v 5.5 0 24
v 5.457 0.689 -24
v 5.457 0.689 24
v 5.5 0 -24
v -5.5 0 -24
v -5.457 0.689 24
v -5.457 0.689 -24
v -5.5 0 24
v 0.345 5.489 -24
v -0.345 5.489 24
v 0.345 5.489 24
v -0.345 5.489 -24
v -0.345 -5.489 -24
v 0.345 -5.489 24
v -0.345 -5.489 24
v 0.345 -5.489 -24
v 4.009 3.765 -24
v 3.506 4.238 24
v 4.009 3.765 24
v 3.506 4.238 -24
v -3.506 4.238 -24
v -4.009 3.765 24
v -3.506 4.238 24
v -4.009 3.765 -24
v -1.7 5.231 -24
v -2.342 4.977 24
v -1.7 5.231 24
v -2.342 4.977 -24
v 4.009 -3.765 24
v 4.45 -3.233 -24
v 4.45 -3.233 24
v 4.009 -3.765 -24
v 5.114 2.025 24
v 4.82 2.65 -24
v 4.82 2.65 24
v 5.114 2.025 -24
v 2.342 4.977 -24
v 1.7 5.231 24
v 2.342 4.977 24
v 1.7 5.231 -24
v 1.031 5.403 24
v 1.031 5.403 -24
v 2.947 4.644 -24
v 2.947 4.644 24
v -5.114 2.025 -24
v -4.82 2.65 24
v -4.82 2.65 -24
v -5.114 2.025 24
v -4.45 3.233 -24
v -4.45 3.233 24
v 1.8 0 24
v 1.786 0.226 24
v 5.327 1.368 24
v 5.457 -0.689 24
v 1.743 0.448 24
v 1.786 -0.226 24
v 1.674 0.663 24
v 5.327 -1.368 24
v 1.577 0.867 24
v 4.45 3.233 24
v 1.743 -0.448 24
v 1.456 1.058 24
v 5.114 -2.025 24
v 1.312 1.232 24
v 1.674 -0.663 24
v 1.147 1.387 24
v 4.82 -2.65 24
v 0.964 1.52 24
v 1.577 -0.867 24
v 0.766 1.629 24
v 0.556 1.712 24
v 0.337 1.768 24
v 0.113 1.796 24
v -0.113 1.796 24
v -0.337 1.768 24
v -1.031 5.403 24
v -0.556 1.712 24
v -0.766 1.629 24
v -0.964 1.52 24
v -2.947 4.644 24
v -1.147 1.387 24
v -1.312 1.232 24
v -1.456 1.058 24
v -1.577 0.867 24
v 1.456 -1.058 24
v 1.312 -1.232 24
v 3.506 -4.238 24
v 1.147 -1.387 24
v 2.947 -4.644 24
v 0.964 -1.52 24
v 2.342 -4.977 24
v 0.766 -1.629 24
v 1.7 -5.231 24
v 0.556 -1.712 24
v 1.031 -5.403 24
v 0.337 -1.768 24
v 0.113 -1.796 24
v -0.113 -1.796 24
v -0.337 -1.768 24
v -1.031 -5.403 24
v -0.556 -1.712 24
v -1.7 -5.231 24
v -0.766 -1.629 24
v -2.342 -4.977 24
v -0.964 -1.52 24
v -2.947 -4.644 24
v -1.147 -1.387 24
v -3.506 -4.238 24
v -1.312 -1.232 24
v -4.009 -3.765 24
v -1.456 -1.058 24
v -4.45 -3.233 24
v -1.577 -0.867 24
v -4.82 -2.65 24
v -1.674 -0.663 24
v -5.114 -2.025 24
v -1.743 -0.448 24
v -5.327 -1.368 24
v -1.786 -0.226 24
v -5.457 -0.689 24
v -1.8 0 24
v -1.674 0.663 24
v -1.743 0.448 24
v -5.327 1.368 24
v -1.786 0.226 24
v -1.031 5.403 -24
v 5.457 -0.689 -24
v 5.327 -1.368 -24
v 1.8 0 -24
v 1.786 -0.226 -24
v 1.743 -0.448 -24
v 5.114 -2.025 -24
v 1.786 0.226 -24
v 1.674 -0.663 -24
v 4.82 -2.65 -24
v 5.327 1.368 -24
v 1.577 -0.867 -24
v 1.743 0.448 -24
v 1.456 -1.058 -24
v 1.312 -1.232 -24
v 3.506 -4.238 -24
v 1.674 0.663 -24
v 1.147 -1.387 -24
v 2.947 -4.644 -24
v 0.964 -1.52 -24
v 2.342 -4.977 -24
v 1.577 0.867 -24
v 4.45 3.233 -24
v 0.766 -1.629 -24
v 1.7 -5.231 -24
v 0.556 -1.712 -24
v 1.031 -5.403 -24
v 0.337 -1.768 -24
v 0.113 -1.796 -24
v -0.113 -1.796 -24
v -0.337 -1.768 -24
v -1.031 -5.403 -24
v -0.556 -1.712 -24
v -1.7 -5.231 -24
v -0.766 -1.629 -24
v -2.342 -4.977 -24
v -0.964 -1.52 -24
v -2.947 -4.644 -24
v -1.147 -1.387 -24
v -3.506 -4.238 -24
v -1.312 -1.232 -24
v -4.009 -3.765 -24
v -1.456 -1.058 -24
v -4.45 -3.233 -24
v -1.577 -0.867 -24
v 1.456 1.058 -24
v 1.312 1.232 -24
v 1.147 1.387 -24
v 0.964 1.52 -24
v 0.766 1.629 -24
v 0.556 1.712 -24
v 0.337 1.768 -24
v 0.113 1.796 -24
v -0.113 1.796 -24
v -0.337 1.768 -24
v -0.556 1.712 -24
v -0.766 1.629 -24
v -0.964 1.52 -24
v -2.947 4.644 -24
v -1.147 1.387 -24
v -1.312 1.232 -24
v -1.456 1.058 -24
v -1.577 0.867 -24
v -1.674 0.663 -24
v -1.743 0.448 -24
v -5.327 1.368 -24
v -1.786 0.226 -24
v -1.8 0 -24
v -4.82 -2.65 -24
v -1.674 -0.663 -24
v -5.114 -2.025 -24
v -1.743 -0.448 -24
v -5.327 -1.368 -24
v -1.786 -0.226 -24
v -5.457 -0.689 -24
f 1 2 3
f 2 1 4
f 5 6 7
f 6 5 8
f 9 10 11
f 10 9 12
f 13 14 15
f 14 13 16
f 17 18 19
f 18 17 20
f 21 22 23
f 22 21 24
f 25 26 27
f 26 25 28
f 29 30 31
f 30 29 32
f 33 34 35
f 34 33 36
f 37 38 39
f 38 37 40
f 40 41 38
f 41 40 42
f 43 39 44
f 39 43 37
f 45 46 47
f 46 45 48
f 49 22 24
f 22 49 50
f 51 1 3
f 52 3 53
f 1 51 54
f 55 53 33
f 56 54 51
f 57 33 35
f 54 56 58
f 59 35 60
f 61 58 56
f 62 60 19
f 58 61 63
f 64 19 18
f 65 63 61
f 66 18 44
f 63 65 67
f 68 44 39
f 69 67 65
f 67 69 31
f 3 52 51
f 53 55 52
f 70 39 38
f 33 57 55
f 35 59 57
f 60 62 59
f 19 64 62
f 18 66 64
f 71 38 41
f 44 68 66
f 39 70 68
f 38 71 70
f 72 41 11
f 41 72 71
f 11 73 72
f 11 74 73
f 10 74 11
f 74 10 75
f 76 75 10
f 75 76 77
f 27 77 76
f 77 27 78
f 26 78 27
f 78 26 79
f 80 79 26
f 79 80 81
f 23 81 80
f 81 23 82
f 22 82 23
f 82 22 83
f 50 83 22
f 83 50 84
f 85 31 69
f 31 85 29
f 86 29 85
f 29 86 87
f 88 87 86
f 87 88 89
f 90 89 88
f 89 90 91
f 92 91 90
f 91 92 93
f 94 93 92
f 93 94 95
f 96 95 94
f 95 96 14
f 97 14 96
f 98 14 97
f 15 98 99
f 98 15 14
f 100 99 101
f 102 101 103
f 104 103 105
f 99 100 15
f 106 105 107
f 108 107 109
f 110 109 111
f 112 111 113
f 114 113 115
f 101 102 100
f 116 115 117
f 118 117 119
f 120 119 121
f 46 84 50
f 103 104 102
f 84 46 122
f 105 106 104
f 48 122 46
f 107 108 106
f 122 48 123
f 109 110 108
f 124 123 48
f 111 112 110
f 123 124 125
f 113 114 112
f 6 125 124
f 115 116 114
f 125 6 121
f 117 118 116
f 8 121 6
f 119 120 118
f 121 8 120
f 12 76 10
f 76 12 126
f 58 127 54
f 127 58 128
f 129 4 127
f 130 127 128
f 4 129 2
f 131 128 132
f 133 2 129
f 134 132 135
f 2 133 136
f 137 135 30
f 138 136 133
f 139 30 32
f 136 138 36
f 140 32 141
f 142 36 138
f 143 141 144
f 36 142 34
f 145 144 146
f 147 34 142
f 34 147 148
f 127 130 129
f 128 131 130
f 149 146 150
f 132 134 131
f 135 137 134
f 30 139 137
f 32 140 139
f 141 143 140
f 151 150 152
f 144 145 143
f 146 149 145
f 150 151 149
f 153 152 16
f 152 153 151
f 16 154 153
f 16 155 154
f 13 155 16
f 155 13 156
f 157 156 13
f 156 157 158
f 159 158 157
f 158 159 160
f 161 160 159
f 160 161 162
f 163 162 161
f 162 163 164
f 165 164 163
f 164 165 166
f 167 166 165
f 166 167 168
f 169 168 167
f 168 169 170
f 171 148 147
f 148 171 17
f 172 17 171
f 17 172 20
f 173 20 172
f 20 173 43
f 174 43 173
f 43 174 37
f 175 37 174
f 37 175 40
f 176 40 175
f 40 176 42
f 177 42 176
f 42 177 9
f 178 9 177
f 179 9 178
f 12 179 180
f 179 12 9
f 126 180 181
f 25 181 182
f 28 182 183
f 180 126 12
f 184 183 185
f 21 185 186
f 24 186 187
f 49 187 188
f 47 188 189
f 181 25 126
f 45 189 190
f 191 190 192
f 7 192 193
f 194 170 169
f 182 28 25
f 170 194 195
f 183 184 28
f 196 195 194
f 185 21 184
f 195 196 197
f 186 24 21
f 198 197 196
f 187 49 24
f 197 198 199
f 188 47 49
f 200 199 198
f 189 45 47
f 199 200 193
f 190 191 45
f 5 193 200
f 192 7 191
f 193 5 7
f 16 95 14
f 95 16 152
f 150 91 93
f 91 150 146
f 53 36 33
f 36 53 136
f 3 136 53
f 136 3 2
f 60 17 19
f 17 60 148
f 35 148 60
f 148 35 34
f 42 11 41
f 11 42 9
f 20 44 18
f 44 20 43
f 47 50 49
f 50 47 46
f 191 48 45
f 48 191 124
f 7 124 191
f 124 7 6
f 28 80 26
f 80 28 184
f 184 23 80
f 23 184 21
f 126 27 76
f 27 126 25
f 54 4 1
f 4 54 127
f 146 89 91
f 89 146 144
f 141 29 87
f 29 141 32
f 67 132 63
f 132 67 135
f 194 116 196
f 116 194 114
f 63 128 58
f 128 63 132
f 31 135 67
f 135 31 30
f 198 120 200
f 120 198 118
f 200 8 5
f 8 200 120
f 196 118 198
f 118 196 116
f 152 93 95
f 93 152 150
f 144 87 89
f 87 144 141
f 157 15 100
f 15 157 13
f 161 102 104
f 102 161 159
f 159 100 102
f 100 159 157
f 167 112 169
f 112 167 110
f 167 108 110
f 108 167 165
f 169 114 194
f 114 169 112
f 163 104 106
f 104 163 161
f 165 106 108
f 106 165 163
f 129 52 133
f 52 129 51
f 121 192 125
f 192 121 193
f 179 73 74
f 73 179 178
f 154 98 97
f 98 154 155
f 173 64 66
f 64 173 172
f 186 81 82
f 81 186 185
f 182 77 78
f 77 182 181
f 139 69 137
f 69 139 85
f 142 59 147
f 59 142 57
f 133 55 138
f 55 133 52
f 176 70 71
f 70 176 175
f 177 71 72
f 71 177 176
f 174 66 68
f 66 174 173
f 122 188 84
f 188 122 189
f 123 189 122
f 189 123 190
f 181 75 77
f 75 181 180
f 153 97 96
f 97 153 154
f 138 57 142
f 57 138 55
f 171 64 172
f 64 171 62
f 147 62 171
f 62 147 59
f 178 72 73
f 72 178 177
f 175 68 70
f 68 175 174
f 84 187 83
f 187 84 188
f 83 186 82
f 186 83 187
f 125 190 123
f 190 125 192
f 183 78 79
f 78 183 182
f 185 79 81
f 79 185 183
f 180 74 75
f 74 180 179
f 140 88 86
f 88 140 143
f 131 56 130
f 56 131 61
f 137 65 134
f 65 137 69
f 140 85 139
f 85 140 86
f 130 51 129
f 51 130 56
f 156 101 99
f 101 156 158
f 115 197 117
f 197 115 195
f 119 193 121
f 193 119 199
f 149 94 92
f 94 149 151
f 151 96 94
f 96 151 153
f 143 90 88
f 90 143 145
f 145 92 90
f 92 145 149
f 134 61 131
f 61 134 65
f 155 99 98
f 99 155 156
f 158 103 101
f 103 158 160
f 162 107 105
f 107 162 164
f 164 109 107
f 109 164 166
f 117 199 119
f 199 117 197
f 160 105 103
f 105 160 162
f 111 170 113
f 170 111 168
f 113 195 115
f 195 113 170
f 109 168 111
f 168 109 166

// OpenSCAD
$fn = 50;


difference() {
	union() {
		translate(v = [0, 0, -24.0000000000]) {
			cylinder(h = 48, r = 5.5000000000);
		}
	}
	union() {
		translate(v = [0, 0, -100.0000000000]) {
			cylinder(h = 200, r = 1.8000000000);
		}
	}
}
